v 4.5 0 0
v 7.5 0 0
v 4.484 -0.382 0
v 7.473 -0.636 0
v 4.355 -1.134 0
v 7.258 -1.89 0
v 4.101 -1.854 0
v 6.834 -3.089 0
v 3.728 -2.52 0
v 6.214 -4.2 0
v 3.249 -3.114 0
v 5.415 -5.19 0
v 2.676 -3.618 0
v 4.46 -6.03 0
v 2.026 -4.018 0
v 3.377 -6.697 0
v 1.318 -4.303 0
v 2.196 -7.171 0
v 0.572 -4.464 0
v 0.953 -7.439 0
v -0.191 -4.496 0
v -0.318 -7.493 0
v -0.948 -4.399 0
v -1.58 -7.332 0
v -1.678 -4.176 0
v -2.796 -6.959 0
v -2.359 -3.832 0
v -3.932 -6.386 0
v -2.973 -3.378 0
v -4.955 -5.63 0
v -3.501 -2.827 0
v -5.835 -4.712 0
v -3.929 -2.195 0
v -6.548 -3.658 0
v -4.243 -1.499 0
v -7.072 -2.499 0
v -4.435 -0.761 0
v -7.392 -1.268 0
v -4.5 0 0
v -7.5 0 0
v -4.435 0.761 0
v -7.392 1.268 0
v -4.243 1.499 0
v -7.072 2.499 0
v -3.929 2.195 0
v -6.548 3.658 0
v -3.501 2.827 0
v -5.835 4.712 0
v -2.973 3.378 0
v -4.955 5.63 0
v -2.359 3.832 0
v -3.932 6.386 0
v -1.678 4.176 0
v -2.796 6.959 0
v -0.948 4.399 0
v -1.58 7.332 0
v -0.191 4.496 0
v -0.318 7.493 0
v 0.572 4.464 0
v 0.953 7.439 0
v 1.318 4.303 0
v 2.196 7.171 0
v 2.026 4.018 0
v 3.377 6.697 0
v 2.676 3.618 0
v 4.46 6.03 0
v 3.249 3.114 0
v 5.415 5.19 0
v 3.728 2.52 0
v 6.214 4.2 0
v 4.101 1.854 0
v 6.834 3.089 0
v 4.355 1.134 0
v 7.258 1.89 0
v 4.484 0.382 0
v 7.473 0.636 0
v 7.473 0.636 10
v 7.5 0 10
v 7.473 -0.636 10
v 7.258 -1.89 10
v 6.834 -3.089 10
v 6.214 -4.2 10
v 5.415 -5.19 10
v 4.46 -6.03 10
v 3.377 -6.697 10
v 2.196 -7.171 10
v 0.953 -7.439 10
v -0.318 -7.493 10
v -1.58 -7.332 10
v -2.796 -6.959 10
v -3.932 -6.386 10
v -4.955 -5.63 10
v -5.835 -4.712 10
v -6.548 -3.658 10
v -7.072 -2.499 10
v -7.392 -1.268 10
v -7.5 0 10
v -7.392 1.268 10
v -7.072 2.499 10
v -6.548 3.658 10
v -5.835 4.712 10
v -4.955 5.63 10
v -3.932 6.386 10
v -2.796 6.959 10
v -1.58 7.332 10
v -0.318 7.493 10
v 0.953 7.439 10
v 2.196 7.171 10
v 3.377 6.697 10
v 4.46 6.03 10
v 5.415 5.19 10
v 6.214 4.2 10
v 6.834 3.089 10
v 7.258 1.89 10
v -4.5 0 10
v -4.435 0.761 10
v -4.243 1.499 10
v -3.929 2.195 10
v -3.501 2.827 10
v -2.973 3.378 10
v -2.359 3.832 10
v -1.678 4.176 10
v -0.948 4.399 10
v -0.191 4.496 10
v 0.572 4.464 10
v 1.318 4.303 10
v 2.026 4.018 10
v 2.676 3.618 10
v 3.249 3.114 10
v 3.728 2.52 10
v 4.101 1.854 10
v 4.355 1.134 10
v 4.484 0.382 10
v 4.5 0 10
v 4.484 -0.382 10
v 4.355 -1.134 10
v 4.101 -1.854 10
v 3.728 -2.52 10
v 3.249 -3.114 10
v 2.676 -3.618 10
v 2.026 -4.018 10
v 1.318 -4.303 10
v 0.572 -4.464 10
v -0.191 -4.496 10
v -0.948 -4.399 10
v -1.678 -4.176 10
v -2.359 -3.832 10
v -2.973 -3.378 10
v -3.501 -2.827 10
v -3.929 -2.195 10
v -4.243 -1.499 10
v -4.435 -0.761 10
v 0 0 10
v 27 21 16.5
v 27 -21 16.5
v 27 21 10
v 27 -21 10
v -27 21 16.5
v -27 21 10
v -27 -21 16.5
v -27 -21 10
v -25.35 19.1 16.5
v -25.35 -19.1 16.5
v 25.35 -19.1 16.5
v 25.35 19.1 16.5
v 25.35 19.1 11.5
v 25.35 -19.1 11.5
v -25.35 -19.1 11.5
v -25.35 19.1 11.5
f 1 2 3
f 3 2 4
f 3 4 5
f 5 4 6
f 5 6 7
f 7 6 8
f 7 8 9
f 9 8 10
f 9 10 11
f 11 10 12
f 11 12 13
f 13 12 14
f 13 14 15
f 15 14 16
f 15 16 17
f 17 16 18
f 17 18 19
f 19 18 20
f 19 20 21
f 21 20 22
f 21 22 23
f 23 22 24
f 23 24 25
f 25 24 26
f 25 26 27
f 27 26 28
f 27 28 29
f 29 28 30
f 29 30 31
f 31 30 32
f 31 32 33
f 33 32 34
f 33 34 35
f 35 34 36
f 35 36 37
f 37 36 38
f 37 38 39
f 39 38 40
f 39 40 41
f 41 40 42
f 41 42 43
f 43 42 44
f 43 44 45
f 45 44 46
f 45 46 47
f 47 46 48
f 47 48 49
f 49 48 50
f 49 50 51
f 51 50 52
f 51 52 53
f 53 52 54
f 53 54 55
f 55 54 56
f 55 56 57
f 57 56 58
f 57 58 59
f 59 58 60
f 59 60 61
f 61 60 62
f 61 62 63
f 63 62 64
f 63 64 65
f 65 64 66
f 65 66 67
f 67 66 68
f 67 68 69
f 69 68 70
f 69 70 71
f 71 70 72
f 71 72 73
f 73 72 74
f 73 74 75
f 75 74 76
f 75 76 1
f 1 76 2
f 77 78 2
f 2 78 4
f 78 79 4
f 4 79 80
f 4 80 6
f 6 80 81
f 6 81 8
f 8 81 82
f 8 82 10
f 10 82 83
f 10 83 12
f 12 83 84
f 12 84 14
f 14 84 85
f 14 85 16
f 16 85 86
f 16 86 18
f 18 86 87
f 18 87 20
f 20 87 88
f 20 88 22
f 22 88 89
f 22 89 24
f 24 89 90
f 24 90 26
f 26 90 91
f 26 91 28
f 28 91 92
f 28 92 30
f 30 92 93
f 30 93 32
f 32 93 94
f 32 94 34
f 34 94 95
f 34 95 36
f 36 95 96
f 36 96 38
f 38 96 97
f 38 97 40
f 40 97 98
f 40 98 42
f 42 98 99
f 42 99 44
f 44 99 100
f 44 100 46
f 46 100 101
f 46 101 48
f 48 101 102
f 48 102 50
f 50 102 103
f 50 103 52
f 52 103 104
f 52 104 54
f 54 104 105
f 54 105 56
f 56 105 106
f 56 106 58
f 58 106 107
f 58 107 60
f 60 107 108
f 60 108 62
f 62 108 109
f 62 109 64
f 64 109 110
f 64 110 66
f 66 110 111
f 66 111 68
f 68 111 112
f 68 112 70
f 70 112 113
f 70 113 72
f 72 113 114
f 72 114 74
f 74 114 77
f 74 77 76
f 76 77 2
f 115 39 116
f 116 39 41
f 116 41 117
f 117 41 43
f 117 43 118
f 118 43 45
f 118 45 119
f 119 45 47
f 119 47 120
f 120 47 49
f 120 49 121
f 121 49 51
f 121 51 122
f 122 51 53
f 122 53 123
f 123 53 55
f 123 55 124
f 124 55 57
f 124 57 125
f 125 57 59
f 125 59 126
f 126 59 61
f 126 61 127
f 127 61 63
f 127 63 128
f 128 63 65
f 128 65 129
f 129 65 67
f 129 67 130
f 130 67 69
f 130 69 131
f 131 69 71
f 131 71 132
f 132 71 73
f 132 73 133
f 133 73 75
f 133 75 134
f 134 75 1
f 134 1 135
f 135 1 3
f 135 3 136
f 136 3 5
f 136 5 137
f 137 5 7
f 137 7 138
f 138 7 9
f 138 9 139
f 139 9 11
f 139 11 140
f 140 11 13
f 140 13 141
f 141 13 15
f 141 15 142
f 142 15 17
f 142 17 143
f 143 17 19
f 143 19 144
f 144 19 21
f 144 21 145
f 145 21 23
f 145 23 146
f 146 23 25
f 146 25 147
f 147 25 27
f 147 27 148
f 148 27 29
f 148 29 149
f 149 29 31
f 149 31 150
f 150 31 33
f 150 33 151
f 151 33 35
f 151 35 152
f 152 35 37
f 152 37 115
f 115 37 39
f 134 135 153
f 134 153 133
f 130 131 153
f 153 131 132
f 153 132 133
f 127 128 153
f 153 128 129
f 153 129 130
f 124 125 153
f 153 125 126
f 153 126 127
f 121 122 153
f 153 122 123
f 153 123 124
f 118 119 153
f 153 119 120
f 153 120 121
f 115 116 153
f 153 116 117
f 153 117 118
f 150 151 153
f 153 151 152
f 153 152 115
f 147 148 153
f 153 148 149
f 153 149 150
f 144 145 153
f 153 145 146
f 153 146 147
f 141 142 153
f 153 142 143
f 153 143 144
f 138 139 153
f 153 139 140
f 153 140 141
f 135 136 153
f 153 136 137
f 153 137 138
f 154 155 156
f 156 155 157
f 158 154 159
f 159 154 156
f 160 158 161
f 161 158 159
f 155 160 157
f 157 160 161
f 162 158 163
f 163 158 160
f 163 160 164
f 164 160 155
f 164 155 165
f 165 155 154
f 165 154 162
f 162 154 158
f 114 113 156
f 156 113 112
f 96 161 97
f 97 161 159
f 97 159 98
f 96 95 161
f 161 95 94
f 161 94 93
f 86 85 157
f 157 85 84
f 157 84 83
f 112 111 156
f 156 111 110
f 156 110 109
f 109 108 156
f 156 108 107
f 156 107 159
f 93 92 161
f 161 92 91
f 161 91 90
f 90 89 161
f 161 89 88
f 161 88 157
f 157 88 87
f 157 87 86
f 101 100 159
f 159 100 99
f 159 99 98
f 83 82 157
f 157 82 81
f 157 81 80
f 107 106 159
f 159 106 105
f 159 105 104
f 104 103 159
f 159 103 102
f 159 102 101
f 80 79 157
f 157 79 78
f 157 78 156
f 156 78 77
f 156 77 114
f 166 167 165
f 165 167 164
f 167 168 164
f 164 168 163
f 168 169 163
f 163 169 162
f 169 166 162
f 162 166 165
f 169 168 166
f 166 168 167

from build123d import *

# Parameters (mm, degrees)
ESQUISSE1_R             = 7.5
ESQUISSE1_R_2           = 4.5
BOSS_EXTRU_1_DEPTH      = 10
ESQUISSE2_W             = 54
ESQUISSE2_H             = 42
BOSS_EXTRU_2_DEPTH      = 6.5
ESQUISSE4_W             = 50.7
ESQUISSE4_H             = 38.2
ENL_V_MAT_EXTRU_2_DEPTH = 5


with BuildPart() as part:
    # Esquisse1 → Boss.-Extru.1 (new body)
    with BuildSketch(Plane.XY):
        Circle(ESQUISSE1_R)
        Circle(ESQUISSE1_R_2, mode=Mode.SUBTRACT)
    extrude(amount=BOSS_EXTRU_1_DEPTH)

    # Esquisse2 → Boss.-Extru.2 (add)
    with BuildSketch(Plane.XY.offset(10)):
        Rectangle(ESQUISSE2_W, ESQUISSE2_H)
    extrude(amount=BOSS_EXTRU_2_DEPTH)

    # Esquisse4 → Enlèv. mat.-Extru.2 (cut)
    with BuildSketch(Plane.XY.offset(16.5)):
        Rectangle(ESQUISSE4_W, ESQUISSE4_H)
    extrude(amount=-ENL_V_MAT_EXTRU_2_DEPTH, mode=Mode.SUBTRACT)


solid = part.part
